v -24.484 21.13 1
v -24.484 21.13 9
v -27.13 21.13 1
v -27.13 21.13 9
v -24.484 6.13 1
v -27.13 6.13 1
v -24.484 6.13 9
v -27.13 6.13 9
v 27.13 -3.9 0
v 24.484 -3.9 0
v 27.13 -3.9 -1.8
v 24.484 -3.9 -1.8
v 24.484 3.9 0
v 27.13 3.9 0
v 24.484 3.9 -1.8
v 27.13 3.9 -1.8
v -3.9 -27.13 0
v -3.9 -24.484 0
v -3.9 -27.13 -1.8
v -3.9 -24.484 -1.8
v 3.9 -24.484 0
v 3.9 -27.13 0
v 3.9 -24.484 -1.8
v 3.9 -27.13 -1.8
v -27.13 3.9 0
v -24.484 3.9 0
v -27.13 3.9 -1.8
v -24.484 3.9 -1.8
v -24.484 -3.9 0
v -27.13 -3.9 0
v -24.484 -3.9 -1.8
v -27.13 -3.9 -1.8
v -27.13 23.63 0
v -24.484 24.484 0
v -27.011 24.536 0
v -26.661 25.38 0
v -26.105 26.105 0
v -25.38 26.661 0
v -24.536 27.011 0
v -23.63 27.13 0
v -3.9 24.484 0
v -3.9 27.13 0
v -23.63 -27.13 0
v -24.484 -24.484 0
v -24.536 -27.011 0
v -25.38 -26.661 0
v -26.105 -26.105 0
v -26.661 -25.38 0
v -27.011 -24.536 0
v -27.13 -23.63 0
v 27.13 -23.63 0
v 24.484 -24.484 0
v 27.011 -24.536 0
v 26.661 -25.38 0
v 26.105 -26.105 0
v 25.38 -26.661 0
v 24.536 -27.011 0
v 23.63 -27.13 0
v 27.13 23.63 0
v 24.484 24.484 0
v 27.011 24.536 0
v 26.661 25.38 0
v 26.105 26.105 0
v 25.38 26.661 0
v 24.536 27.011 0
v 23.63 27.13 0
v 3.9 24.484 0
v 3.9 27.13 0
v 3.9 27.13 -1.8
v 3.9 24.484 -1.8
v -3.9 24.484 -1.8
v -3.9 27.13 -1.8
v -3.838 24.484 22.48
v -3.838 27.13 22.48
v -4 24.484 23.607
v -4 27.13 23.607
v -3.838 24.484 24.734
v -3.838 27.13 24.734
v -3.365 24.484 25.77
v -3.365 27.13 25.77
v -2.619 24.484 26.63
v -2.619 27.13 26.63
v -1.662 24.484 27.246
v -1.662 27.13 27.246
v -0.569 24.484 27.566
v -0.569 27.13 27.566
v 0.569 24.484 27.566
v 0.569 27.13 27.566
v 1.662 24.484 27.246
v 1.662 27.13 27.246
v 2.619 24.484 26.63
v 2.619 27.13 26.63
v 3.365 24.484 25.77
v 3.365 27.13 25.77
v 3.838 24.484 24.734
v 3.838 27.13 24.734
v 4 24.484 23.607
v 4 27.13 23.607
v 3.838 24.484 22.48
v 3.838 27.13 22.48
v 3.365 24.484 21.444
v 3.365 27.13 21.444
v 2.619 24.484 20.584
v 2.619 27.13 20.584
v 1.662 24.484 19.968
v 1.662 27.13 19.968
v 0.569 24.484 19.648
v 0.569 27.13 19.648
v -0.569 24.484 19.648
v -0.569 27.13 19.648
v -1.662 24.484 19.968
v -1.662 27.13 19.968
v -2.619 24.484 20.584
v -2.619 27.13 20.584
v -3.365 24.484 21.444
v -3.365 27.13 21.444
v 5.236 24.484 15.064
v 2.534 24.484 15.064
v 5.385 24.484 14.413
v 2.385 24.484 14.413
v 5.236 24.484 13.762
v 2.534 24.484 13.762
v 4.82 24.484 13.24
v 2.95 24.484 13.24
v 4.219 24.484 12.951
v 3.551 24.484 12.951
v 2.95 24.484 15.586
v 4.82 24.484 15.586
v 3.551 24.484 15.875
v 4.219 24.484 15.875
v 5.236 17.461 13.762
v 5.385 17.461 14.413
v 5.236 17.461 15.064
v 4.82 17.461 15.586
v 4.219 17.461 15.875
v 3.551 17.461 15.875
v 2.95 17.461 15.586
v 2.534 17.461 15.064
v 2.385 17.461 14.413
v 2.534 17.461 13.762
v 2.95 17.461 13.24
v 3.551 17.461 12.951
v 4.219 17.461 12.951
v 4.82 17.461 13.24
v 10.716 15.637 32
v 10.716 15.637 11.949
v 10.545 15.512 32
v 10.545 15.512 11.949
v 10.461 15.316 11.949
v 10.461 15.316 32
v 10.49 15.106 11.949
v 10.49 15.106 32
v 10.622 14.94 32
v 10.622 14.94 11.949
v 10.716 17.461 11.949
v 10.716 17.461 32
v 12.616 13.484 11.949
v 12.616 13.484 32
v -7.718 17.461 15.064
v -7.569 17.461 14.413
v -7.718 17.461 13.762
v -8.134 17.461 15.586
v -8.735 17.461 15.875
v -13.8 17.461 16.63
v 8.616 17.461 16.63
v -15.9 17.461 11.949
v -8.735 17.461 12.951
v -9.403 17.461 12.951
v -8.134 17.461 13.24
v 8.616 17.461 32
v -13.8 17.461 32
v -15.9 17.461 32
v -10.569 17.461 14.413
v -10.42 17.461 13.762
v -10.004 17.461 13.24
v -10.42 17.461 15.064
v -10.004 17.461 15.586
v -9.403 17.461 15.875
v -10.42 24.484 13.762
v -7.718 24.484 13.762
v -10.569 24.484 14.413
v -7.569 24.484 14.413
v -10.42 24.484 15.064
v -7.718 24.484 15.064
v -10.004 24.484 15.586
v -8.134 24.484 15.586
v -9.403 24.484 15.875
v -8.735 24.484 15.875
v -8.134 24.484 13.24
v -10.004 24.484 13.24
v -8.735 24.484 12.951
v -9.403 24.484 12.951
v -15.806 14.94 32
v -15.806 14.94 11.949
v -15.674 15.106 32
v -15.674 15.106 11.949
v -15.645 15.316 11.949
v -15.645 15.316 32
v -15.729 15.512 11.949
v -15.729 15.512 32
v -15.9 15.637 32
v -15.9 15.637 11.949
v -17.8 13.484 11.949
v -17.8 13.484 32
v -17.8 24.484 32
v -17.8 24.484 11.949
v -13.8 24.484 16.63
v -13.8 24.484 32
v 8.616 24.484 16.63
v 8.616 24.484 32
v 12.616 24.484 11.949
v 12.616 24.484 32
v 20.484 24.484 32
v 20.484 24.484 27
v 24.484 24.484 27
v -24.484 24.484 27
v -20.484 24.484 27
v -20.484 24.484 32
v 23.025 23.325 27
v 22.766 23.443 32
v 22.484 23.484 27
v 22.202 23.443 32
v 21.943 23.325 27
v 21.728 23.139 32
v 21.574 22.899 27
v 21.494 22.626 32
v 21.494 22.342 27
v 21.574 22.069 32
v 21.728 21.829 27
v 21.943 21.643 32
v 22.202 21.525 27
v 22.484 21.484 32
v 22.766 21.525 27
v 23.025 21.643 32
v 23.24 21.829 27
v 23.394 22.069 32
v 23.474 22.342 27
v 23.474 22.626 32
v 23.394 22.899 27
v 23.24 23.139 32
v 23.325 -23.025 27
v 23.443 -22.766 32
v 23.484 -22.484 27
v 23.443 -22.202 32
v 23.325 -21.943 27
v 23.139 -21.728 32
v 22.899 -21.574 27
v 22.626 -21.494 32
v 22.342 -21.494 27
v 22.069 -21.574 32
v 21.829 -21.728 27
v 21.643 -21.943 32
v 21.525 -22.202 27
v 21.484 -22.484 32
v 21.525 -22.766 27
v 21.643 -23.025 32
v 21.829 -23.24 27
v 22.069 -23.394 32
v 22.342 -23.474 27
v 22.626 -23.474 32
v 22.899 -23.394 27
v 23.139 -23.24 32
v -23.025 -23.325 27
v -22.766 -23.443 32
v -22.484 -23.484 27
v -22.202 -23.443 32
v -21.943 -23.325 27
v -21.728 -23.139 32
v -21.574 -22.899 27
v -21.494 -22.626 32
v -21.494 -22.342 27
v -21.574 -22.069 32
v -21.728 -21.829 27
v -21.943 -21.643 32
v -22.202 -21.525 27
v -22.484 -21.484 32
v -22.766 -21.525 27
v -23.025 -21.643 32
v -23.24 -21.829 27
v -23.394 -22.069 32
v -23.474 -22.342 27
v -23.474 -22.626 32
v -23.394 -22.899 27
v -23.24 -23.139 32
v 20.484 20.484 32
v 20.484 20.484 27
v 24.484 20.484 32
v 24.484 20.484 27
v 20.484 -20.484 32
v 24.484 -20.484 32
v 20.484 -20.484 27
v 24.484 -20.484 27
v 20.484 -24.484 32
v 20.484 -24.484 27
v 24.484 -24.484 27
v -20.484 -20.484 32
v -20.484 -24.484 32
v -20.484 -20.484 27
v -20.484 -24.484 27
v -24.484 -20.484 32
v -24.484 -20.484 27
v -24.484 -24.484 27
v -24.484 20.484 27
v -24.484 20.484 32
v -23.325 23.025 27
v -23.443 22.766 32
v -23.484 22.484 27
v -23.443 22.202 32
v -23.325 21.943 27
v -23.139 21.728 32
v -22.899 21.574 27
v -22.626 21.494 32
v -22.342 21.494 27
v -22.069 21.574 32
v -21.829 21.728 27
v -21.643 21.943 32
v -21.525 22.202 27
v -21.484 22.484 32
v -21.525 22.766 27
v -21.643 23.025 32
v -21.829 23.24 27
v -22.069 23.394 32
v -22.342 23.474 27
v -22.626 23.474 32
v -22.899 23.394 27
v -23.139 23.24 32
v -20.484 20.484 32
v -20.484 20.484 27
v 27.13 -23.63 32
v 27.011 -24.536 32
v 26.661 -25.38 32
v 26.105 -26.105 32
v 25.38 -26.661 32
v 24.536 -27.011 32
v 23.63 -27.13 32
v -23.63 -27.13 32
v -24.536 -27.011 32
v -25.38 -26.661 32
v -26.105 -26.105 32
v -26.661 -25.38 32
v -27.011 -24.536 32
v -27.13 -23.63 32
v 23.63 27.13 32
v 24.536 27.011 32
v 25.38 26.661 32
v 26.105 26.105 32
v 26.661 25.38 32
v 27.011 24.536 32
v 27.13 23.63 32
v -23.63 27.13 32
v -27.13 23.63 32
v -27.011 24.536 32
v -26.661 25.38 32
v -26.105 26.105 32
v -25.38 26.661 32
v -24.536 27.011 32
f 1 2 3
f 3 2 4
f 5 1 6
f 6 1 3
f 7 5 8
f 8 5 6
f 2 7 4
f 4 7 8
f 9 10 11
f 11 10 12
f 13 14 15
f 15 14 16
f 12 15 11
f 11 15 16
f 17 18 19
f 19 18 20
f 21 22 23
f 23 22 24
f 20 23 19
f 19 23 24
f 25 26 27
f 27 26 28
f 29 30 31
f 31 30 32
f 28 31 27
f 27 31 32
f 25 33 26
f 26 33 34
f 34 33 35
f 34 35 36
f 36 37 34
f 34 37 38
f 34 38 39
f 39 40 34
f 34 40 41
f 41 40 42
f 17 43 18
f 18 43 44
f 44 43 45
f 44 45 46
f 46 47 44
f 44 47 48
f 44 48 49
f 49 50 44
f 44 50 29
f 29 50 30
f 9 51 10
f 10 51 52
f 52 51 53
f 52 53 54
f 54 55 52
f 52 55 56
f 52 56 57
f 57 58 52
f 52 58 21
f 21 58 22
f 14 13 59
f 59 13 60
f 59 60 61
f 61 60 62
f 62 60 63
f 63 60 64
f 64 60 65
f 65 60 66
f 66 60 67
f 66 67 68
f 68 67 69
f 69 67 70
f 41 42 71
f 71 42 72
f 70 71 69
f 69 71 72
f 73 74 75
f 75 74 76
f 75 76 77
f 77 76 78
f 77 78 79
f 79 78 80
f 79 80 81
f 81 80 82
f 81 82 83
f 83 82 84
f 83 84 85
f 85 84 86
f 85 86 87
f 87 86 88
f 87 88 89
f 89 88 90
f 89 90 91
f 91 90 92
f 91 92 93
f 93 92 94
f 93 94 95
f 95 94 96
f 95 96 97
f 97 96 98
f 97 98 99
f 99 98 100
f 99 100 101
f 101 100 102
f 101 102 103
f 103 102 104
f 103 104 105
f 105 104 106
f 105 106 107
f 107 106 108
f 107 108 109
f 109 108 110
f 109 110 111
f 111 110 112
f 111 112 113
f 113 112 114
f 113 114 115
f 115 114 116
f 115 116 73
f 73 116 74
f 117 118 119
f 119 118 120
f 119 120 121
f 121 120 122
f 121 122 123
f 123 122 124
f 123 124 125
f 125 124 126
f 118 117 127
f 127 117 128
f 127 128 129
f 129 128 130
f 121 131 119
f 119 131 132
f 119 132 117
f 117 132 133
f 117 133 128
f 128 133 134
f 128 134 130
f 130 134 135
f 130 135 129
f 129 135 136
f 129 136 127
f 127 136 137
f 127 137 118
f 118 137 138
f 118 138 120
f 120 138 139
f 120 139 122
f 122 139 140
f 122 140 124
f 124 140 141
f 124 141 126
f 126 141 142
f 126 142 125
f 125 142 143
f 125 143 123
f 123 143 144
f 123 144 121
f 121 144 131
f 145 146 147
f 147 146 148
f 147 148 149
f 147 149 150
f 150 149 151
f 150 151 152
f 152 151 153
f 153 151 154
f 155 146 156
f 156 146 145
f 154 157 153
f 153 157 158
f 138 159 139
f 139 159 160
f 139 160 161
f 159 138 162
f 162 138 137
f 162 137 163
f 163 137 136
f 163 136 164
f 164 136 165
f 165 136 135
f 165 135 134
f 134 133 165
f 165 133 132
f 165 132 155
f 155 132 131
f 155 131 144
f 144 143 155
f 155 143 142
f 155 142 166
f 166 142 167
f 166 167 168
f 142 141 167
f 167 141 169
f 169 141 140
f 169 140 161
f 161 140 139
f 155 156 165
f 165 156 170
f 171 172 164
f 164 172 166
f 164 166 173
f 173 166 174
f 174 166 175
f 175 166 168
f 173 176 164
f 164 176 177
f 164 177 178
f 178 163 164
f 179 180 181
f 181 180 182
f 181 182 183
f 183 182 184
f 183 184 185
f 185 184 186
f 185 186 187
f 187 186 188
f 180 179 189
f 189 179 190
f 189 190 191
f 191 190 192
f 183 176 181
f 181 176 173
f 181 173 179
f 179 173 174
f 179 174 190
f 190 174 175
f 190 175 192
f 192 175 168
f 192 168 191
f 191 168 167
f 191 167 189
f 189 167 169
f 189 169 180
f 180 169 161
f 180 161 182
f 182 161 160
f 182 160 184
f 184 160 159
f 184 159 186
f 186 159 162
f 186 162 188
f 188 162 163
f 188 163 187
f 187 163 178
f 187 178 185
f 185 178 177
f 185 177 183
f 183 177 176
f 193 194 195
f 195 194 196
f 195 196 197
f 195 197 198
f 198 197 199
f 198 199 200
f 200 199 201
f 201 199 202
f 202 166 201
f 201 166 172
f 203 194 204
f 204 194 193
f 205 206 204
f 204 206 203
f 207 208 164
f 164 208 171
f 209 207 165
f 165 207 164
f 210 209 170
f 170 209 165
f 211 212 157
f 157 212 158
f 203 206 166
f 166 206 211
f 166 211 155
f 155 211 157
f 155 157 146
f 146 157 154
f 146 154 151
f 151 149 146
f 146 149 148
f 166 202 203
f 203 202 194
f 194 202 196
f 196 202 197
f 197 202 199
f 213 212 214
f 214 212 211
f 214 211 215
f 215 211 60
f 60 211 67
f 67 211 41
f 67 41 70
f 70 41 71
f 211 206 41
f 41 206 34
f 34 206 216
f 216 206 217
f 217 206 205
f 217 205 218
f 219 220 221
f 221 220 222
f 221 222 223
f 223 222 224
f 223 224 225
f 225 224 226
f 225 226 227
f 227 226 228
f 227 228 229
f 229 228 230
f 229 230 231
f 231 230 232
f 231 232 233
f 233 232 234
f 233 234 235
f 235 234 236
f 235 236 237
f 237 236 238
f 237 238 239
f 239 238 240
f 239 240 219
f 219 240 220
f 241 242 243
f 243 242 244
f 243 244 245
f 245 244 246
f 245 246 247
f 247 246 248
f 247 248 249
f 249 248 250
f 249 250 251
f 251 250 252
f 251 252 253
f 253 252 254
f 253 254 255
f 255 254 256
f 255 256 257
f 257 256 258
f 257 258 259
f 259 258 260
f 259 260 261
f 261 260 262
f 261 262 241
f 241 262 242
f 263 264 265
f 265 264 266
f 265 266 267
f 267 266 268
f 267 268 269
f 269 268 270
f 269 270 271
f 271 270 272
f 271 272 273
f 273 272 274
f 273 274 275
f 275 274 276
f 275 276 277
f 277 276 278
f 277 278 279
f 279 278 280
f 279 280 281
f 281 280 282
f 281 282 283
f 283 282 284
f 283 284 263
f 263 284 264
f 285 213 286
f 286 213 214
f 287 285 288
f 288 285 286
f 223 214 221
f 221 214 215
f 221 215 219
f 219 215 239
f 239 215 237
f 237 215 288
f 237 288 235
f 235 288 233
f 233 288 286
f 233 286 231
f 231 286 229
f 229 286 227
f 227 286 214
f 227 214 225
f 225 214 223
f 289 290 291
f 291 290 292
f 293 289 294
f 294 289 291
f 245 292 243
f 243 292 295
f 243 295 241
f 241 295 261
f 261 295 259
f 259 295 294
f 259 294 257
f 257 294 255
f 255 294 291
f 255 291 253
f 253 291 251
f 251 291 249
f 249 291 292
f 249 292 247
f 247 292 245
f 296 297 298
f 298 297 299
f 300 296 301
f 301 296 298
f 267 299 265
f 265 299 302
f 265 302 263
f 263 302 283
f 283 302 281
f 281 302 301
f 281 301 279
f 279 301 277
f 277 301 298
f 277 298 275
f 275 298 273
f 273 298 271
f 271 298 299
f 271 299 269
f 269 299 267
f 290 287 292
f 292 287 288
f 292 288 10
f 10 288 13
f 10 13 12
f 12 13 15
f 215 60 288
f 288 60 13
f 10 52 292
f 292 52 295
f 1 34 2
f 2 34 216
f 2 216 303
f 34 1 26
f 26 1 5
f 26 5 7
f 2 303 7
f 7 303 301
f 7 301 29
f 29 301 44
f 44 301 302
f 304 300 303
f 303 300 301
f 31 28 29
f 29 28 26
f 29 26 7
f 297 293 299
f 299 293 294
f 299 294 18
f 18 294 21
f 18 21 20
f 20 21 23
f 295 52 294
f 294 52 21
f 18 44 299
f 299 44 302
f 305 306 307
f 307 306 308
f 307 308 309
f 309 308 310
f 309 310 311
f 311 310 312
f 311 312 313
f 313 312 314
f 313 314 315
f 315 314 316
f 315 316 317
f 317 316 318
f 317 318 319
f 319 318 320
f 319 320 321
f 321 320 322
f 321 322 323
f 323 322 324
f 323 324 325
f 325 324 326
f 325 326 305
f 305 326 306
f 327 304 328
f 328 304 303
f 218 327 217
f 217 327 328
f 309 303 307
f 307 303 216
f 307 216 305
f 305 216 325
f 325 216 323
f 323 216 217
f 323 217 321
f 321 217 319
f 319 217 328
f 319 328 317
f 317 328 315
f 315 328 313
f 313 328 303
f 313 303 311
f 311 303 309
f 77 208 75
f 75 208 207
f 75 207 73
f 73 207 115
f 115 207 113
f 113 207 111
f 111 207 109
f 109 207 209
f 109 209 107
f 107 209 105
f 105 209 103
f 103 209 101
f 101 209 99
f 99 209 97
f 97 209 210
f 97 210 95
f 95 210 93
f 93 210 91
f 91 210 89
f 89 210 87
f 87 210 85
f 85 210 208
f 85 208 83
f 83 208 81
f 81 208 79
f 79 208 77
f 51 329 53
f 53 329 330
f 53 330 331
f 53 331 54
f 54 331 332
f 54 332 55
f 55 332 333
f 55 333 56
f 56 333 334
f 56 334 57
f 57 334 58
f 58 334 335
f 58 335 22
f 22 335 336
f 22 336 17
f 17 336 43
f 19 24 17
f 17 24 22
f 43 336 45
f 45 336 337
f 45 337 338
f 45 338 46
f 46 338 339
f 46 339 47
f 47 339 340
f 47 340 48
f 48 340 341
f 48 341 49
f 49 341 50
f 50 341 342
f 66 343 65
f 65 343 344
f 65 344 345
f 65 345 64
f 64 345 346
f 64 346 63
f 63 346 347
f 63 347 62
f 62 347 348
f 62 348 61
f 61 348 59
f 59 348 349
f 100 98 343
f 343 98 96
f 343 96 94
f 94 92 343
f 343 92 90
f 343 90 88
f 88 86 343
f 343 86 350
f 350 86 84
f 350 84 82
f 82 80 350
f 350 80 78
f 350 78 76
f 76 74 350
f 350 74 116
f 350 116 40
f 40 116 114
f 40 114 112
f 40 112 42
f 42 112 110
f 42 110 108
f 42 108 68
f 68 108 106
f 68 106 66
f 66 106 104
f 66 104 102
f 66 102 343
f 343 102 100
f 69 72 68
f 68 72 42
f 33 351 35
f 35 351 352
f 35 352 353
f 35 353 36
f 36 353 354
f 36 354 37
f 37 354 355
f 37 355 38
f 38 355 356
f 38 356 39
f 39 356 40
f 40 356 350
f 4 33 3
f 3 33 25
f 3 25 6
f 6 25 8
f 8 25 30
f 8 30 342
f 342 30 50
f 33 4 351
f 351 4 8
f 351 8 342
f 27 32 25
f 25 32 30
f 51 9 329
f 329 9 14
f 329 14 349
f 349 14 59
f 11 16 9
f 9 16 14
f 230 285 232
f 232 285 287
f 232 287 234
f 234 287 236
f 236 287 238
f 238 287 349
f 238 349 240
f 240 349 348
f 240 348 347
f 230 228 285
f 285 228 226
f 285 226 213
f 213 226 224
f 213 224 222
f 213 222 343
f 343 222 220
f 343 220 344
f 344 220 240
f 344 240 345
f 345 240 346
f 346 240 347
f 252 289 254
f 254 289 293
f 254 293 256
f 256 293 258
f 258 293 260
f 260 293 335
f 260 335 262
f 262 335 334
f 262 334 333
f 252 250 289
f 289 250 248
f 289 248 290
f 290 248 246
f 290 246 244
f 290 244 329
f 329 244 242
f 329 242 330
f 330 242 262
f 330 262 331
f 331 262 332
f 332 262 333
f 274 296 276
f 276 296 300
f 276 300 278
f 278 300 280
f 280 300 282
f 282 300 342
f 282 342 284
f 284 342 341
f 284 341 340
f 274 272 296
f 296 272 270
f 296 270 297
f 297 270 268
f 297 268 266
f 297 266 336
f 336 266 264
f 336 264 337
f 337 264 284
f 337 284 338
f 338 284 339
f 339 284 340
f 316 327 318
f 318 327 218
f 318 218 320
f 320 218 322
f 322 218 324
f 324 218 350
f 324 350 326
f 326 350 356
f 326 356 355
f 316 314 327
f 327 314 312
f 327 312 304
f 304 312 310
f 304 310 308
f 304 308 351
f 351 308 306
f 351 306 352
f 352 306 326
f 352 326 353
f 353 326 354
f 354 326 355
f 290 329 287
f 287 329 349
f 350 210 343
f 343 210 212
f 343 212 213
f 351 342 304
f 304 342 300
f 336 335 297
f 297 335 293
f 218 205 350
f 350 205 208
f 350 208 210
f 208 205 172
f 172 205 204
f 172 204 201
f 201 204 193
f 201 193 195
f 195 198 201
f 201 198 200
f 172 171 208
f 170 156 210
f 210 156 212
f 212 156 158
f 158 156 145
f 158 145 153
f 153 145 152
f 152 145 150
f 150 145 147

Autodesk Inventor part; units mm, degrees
ref_plane "YZ Plane" through (0, 0, 0) normal (1, 0, 0) x (0, 1, 0)
ref_plane "XZ Plane" through (0, 0, 0) normal (0, 1, 0) x (-1, 0, 0)
sketch "Skizze1" plane through (0, 0, 0) normal (0, 0, 1) x (1, 0, 0)
  line L0 (-27.13, -27.13) -> (27.13, -27.13)
  line L1 (27.13, -27.13) -> (27.13, 27.13)
  line L2 (27.13, 27.13) -> (-27.13, 27.13)
  line L3 (-27.13, 27.13) -> (-27.13, -27.13)
  line L4 (-37.982, 0) -> (37.982, 0) construction
  line L5 (0, -37.982) -> (0, 37.982) construction
  line L6 (-24.484, 24.484) -> (24.484, 24.484)
  line L7 (24.484, 24.484) -> (24.484, -24.484)
  line L8 (24.484, -24.484) -> (-24.484, -24.484)
  line L9 (-24.484, -24.484) -> (-24.484, 24.484)
  point P0 (0, 0)
  dimension "d0" = 54.26
  dimension "d1" = 2.646
extrude "Extrusion1" add sketch "Skizze1" along normal blind 32
fillet "Rundung1" radius 3.5 4 edges at (-27.13, 27.13, 16) (27.13, 27.13, 16) (-27.13, -27.13, 16) (27.13, -27.13, 16)
sketch "Skizze2" plane through (0, 0, 32) normal (0, 0, 1) x (1, 0, 0)
  line L0 (-24.484, -24.484) -> (-24.484, 24.484) projected
  line L1 (-24.484, 24.484) -> (24.484, 24.484) projected
  line L2 (-24.484, 20.484) -> (-20.484, 20.484)
  line L3 (-20.484, 20.484) -> (-20.484, 24.484)
  line L4 (-20.484, 24.484) -> (-24.484, 24.484)
  line L5 (-24.484, 24.484) -> (-24.484, 20.484)
  point P0 (0, 0)
  point P1 (-24.484, 20.984)
  point P2 (-20.984, 24.484)
  point P3 (20.984, 24.484)
  point P4 (-24.484, 20.984)
  point P5 (-20.984, 24.484)
  dimension "d5" = 4
extrude "Extrusion2" add sketch "Skizze2" against normal blind 5
sketch "Skizze3" plane through (0, 0, 32) normal (0, 0, 1) x (1, 0, 0)
  line L0 (-24.484, 20.484) -> (-20.484, 20.484) projected
  line L1 (-20.484, 20.484) -> (-20.484, 24.484) projected
  point P0 (0, 0)
  point P1 (-22.484, 22.484)
  dimension "d8" = 2
  dimension "d9" = 2
hole "Bohrung1" at (-22.484, 22.484, 32) direction (0, 0, -1) diameter 2 depth 5
pattern_circular "Runde Anordnung1" count 4 over 360 about axis through (0, 0, -10) along (0, 0, 1) of "Extrusion2", "Bohrung1"
sketch "Skizze4" plane through (-20.984, 24.484, 0) normal (0, -1, 0) x (1, 0, 0)
  line L0 (41.468, 27) -> (41.468, 32) projected
  line L1 (0.5, 32) -> (41.468, 32) projected
  line L2 (0.5, 32) -> (0.5, 27) projected
  line L3 (0.5, 27) -> (-3.5, 27) projected
  line L4 (-3.5, 0) -> (45.468, 0) projected
  line L5 (45.468, 27) -> (41.468, 27) projected
  line L6 (44.614, 32) -> (-2.646, 32) projected
  line L7 (3.184, 32) -> (7.184, 32)
  line L8 (7.184, 32) -> (7.184, 11.949)
  line L9 (7.184, 11.949) -> (3.184, 11.949)
  line L10 (3.184, 11.949) -> (3.184, 32)
  line L11 (7.184, 11.949) -> (29.6, 11.949)
  line L12 (29.6, 11.949) -> (29.6, 16.63)
  line L13 (29.6, 16.63) -> (7.184, 16.63)
  line L14 (7.184, 16.63) -> (7.184, 11.949)
  line L15 (0.5, 32) -> (41.468, 32) projected
  line L16 (29.6, 11.949) -> (33.6, 11.949)
  line L17 (33.6, 11.949) -> (33.6, 32)
  line L18 (33.6, 32) -> (29.6, 32)
  line L19 (29.6, 32) -> (29.6, 11.949)
  line L20 (-3.5, 0) -> (-3.5, 27) projected
  line L21 (45.468, 0) -> (45.468, 27) projected
  point P0 (20.984, 0)
  point P1 (18.392, 11.949)
  point P2 (33.6, 32)
  point P3 (7.184, 16.63)
  dimension "d20" = 4
  dimension "d21" = 4.681
  dimension "d22" = 22.416
  dimension "d23" = 2.684
  dimension "d24" = 15.37
extrude "Extrusion3" add sketch "Skizze4" along normal blind 7.023 contours L17 L16 L12 L19 L1 | L8 L9 L10 L1 | L12 L11 L8 L13
sketch "Skizze5" plane through (0, 0, 32) normal (0, 0, 1) x (1, 0, 0)
  line L0 (-17.8, 17.461) -> (12.616, 17.461) projected
  line L1 (-17.8, 17.461) -> (-15.9, 17.461)
  line L2 (-17.8, 15.0145) -> (-17.8, 17.461)
  line L3 (-17.8, 15.0145) -> (-17.8, 13.484)
  line L4 (-17.8, 13.484) -> (-15.806, 14.94)
  line L5 (-20.484, 24.484) -> (-17.8, 24.484) projected
  arc A0 (-15.806, 14.94) -> (-15.9, 15.637) centre (-16.0419, 15.263) ccw
  line L6 (-15.9, 15.637) -> (-15.9, 17.461)
  point P0 (0, 0)
  dimension "d27" = 11
  dimension "d30" = 0.4
  dimension "d31" = 1.824
  dimension "d32" = 1.9
  dimension "d33" = 1.994
extrude "Extrusion4" add sketch "Skizze5" against normal up to surface (20.051 mm away)
ref_plane "Arbeitsebene1" through (-2.592, 17.461, 16.63) normal (1, 0, 0) x (0, 0, -1)
sketch "Skizze7" plane through (-20.984, 17.461, 0) normal (0, -1, 0) x (1, 0, 0)
  line L0 (33.6, 32) -> (29.6, 32) projected
  line L1 (29.6, 32) -> (29.6, 16.63) projected
  line L2 (29.6, 16.63) -> (7.184, 16.63) projected
  line L3 (7.184, 16.63) -> (7.184, 32) projected
  line L4 (7.184, 32) -> (5.084, 32) projected
  line L5 (5.084, 32) -> (5.084, 11.949) projected
  line L6 (5.084, 11.949) -> (33.6, 11.949) projected
  line L7 (33.6, 11.949) -> (33.6, 32) projected
  point P0 (20.984, 0)
  point P1 (11.915, 14.413)
  dimension "d36" = 2.464
  dimension "d37" = 4.731
hole "Bohrung2" at (-9.069, 17.461, 14.413) direction (0, 1, 0) diameter 3 depth 7.023
mirror "Spiegeln2" about plane through (-2.592, 17.461, 16.63) normal (1, 0, 0) of "Extrusion4", "Bohrung2"
sketch "Skizze8" plane through (-23.63, 27.13, 0) normal (0, 1, 0) x (1, 0, 0)
  line L0 (47.26, -32) -> (0, -32) projected
  line L1 (23.63, -32) -> (23.63, 0) construction
  point P0 (23.63, -23.607)
  dimension "d45" = 8.393
hole "Bohrung3" at (0, 27.13, 23.607) direction (0, -1, 0) diameter 8 depth 2.646
sketch "Skizze9" plane through (0, 0, 0) normal (0, 0, -1) x (-1, 0, 0)
  line L0 (-23.63, 27.13) -> (23.63, 27.13) projected
  line L1 (13.8, 24.484) -> (-8.616, 24.484) projected
  line L2 (-3.9, 27.13) -> (3.9, 27.13)
  line L3 (3.9, 27.13) -> (3.9, 24.484)
  line L4 (3.9, 24.484) -> (-3.9, 24.484)
  line L5 (-3.9, 24.484) -> (-3.9, 27.13)
  line L6 (0, -37.982) -> (0, 37.982) construction
  point P0 (0, 0)
  dimension "d53" = 7.8
extrude "Extrusion5" add sketch "Skizze9" along normal blind 1.8
pattern_circular "Runde Anordnung2" count 4 over 360 about axis through (0, 0, -10) along (0, 0, 1) of "Extrusion5"
sketch "Skizze10" plane through (-27.13, -23.63, 32) normal (-1, 0, 0) x (0, 0, 1)
  line L0 (-23, 44.76) -> (-31, 44.76)
  line L1 (-31, 44.76) -> (-31, 29.76)
  line L2 (-31, 29.76) -> (-23, 29.76)
  line L3 (-23, 29.76) -> (-23, 44.76)
  line L4 (0, 50.76) -> (-32, 50.76) projected
  line L5 (-32, 47.26) -> (-32, 27.53) projected
  point P0 (-32, 23.63)
  dimension "d59" = 6
  dimension "d60" = 8
  dimension "d61" = 15
  dimension "d62" = 1
extrude "Extrusion6" cut sketch "Skizze10" against normal up to surface (2.646 mm away)
properties part number "brick_shell_+USB_nudge_V3"
